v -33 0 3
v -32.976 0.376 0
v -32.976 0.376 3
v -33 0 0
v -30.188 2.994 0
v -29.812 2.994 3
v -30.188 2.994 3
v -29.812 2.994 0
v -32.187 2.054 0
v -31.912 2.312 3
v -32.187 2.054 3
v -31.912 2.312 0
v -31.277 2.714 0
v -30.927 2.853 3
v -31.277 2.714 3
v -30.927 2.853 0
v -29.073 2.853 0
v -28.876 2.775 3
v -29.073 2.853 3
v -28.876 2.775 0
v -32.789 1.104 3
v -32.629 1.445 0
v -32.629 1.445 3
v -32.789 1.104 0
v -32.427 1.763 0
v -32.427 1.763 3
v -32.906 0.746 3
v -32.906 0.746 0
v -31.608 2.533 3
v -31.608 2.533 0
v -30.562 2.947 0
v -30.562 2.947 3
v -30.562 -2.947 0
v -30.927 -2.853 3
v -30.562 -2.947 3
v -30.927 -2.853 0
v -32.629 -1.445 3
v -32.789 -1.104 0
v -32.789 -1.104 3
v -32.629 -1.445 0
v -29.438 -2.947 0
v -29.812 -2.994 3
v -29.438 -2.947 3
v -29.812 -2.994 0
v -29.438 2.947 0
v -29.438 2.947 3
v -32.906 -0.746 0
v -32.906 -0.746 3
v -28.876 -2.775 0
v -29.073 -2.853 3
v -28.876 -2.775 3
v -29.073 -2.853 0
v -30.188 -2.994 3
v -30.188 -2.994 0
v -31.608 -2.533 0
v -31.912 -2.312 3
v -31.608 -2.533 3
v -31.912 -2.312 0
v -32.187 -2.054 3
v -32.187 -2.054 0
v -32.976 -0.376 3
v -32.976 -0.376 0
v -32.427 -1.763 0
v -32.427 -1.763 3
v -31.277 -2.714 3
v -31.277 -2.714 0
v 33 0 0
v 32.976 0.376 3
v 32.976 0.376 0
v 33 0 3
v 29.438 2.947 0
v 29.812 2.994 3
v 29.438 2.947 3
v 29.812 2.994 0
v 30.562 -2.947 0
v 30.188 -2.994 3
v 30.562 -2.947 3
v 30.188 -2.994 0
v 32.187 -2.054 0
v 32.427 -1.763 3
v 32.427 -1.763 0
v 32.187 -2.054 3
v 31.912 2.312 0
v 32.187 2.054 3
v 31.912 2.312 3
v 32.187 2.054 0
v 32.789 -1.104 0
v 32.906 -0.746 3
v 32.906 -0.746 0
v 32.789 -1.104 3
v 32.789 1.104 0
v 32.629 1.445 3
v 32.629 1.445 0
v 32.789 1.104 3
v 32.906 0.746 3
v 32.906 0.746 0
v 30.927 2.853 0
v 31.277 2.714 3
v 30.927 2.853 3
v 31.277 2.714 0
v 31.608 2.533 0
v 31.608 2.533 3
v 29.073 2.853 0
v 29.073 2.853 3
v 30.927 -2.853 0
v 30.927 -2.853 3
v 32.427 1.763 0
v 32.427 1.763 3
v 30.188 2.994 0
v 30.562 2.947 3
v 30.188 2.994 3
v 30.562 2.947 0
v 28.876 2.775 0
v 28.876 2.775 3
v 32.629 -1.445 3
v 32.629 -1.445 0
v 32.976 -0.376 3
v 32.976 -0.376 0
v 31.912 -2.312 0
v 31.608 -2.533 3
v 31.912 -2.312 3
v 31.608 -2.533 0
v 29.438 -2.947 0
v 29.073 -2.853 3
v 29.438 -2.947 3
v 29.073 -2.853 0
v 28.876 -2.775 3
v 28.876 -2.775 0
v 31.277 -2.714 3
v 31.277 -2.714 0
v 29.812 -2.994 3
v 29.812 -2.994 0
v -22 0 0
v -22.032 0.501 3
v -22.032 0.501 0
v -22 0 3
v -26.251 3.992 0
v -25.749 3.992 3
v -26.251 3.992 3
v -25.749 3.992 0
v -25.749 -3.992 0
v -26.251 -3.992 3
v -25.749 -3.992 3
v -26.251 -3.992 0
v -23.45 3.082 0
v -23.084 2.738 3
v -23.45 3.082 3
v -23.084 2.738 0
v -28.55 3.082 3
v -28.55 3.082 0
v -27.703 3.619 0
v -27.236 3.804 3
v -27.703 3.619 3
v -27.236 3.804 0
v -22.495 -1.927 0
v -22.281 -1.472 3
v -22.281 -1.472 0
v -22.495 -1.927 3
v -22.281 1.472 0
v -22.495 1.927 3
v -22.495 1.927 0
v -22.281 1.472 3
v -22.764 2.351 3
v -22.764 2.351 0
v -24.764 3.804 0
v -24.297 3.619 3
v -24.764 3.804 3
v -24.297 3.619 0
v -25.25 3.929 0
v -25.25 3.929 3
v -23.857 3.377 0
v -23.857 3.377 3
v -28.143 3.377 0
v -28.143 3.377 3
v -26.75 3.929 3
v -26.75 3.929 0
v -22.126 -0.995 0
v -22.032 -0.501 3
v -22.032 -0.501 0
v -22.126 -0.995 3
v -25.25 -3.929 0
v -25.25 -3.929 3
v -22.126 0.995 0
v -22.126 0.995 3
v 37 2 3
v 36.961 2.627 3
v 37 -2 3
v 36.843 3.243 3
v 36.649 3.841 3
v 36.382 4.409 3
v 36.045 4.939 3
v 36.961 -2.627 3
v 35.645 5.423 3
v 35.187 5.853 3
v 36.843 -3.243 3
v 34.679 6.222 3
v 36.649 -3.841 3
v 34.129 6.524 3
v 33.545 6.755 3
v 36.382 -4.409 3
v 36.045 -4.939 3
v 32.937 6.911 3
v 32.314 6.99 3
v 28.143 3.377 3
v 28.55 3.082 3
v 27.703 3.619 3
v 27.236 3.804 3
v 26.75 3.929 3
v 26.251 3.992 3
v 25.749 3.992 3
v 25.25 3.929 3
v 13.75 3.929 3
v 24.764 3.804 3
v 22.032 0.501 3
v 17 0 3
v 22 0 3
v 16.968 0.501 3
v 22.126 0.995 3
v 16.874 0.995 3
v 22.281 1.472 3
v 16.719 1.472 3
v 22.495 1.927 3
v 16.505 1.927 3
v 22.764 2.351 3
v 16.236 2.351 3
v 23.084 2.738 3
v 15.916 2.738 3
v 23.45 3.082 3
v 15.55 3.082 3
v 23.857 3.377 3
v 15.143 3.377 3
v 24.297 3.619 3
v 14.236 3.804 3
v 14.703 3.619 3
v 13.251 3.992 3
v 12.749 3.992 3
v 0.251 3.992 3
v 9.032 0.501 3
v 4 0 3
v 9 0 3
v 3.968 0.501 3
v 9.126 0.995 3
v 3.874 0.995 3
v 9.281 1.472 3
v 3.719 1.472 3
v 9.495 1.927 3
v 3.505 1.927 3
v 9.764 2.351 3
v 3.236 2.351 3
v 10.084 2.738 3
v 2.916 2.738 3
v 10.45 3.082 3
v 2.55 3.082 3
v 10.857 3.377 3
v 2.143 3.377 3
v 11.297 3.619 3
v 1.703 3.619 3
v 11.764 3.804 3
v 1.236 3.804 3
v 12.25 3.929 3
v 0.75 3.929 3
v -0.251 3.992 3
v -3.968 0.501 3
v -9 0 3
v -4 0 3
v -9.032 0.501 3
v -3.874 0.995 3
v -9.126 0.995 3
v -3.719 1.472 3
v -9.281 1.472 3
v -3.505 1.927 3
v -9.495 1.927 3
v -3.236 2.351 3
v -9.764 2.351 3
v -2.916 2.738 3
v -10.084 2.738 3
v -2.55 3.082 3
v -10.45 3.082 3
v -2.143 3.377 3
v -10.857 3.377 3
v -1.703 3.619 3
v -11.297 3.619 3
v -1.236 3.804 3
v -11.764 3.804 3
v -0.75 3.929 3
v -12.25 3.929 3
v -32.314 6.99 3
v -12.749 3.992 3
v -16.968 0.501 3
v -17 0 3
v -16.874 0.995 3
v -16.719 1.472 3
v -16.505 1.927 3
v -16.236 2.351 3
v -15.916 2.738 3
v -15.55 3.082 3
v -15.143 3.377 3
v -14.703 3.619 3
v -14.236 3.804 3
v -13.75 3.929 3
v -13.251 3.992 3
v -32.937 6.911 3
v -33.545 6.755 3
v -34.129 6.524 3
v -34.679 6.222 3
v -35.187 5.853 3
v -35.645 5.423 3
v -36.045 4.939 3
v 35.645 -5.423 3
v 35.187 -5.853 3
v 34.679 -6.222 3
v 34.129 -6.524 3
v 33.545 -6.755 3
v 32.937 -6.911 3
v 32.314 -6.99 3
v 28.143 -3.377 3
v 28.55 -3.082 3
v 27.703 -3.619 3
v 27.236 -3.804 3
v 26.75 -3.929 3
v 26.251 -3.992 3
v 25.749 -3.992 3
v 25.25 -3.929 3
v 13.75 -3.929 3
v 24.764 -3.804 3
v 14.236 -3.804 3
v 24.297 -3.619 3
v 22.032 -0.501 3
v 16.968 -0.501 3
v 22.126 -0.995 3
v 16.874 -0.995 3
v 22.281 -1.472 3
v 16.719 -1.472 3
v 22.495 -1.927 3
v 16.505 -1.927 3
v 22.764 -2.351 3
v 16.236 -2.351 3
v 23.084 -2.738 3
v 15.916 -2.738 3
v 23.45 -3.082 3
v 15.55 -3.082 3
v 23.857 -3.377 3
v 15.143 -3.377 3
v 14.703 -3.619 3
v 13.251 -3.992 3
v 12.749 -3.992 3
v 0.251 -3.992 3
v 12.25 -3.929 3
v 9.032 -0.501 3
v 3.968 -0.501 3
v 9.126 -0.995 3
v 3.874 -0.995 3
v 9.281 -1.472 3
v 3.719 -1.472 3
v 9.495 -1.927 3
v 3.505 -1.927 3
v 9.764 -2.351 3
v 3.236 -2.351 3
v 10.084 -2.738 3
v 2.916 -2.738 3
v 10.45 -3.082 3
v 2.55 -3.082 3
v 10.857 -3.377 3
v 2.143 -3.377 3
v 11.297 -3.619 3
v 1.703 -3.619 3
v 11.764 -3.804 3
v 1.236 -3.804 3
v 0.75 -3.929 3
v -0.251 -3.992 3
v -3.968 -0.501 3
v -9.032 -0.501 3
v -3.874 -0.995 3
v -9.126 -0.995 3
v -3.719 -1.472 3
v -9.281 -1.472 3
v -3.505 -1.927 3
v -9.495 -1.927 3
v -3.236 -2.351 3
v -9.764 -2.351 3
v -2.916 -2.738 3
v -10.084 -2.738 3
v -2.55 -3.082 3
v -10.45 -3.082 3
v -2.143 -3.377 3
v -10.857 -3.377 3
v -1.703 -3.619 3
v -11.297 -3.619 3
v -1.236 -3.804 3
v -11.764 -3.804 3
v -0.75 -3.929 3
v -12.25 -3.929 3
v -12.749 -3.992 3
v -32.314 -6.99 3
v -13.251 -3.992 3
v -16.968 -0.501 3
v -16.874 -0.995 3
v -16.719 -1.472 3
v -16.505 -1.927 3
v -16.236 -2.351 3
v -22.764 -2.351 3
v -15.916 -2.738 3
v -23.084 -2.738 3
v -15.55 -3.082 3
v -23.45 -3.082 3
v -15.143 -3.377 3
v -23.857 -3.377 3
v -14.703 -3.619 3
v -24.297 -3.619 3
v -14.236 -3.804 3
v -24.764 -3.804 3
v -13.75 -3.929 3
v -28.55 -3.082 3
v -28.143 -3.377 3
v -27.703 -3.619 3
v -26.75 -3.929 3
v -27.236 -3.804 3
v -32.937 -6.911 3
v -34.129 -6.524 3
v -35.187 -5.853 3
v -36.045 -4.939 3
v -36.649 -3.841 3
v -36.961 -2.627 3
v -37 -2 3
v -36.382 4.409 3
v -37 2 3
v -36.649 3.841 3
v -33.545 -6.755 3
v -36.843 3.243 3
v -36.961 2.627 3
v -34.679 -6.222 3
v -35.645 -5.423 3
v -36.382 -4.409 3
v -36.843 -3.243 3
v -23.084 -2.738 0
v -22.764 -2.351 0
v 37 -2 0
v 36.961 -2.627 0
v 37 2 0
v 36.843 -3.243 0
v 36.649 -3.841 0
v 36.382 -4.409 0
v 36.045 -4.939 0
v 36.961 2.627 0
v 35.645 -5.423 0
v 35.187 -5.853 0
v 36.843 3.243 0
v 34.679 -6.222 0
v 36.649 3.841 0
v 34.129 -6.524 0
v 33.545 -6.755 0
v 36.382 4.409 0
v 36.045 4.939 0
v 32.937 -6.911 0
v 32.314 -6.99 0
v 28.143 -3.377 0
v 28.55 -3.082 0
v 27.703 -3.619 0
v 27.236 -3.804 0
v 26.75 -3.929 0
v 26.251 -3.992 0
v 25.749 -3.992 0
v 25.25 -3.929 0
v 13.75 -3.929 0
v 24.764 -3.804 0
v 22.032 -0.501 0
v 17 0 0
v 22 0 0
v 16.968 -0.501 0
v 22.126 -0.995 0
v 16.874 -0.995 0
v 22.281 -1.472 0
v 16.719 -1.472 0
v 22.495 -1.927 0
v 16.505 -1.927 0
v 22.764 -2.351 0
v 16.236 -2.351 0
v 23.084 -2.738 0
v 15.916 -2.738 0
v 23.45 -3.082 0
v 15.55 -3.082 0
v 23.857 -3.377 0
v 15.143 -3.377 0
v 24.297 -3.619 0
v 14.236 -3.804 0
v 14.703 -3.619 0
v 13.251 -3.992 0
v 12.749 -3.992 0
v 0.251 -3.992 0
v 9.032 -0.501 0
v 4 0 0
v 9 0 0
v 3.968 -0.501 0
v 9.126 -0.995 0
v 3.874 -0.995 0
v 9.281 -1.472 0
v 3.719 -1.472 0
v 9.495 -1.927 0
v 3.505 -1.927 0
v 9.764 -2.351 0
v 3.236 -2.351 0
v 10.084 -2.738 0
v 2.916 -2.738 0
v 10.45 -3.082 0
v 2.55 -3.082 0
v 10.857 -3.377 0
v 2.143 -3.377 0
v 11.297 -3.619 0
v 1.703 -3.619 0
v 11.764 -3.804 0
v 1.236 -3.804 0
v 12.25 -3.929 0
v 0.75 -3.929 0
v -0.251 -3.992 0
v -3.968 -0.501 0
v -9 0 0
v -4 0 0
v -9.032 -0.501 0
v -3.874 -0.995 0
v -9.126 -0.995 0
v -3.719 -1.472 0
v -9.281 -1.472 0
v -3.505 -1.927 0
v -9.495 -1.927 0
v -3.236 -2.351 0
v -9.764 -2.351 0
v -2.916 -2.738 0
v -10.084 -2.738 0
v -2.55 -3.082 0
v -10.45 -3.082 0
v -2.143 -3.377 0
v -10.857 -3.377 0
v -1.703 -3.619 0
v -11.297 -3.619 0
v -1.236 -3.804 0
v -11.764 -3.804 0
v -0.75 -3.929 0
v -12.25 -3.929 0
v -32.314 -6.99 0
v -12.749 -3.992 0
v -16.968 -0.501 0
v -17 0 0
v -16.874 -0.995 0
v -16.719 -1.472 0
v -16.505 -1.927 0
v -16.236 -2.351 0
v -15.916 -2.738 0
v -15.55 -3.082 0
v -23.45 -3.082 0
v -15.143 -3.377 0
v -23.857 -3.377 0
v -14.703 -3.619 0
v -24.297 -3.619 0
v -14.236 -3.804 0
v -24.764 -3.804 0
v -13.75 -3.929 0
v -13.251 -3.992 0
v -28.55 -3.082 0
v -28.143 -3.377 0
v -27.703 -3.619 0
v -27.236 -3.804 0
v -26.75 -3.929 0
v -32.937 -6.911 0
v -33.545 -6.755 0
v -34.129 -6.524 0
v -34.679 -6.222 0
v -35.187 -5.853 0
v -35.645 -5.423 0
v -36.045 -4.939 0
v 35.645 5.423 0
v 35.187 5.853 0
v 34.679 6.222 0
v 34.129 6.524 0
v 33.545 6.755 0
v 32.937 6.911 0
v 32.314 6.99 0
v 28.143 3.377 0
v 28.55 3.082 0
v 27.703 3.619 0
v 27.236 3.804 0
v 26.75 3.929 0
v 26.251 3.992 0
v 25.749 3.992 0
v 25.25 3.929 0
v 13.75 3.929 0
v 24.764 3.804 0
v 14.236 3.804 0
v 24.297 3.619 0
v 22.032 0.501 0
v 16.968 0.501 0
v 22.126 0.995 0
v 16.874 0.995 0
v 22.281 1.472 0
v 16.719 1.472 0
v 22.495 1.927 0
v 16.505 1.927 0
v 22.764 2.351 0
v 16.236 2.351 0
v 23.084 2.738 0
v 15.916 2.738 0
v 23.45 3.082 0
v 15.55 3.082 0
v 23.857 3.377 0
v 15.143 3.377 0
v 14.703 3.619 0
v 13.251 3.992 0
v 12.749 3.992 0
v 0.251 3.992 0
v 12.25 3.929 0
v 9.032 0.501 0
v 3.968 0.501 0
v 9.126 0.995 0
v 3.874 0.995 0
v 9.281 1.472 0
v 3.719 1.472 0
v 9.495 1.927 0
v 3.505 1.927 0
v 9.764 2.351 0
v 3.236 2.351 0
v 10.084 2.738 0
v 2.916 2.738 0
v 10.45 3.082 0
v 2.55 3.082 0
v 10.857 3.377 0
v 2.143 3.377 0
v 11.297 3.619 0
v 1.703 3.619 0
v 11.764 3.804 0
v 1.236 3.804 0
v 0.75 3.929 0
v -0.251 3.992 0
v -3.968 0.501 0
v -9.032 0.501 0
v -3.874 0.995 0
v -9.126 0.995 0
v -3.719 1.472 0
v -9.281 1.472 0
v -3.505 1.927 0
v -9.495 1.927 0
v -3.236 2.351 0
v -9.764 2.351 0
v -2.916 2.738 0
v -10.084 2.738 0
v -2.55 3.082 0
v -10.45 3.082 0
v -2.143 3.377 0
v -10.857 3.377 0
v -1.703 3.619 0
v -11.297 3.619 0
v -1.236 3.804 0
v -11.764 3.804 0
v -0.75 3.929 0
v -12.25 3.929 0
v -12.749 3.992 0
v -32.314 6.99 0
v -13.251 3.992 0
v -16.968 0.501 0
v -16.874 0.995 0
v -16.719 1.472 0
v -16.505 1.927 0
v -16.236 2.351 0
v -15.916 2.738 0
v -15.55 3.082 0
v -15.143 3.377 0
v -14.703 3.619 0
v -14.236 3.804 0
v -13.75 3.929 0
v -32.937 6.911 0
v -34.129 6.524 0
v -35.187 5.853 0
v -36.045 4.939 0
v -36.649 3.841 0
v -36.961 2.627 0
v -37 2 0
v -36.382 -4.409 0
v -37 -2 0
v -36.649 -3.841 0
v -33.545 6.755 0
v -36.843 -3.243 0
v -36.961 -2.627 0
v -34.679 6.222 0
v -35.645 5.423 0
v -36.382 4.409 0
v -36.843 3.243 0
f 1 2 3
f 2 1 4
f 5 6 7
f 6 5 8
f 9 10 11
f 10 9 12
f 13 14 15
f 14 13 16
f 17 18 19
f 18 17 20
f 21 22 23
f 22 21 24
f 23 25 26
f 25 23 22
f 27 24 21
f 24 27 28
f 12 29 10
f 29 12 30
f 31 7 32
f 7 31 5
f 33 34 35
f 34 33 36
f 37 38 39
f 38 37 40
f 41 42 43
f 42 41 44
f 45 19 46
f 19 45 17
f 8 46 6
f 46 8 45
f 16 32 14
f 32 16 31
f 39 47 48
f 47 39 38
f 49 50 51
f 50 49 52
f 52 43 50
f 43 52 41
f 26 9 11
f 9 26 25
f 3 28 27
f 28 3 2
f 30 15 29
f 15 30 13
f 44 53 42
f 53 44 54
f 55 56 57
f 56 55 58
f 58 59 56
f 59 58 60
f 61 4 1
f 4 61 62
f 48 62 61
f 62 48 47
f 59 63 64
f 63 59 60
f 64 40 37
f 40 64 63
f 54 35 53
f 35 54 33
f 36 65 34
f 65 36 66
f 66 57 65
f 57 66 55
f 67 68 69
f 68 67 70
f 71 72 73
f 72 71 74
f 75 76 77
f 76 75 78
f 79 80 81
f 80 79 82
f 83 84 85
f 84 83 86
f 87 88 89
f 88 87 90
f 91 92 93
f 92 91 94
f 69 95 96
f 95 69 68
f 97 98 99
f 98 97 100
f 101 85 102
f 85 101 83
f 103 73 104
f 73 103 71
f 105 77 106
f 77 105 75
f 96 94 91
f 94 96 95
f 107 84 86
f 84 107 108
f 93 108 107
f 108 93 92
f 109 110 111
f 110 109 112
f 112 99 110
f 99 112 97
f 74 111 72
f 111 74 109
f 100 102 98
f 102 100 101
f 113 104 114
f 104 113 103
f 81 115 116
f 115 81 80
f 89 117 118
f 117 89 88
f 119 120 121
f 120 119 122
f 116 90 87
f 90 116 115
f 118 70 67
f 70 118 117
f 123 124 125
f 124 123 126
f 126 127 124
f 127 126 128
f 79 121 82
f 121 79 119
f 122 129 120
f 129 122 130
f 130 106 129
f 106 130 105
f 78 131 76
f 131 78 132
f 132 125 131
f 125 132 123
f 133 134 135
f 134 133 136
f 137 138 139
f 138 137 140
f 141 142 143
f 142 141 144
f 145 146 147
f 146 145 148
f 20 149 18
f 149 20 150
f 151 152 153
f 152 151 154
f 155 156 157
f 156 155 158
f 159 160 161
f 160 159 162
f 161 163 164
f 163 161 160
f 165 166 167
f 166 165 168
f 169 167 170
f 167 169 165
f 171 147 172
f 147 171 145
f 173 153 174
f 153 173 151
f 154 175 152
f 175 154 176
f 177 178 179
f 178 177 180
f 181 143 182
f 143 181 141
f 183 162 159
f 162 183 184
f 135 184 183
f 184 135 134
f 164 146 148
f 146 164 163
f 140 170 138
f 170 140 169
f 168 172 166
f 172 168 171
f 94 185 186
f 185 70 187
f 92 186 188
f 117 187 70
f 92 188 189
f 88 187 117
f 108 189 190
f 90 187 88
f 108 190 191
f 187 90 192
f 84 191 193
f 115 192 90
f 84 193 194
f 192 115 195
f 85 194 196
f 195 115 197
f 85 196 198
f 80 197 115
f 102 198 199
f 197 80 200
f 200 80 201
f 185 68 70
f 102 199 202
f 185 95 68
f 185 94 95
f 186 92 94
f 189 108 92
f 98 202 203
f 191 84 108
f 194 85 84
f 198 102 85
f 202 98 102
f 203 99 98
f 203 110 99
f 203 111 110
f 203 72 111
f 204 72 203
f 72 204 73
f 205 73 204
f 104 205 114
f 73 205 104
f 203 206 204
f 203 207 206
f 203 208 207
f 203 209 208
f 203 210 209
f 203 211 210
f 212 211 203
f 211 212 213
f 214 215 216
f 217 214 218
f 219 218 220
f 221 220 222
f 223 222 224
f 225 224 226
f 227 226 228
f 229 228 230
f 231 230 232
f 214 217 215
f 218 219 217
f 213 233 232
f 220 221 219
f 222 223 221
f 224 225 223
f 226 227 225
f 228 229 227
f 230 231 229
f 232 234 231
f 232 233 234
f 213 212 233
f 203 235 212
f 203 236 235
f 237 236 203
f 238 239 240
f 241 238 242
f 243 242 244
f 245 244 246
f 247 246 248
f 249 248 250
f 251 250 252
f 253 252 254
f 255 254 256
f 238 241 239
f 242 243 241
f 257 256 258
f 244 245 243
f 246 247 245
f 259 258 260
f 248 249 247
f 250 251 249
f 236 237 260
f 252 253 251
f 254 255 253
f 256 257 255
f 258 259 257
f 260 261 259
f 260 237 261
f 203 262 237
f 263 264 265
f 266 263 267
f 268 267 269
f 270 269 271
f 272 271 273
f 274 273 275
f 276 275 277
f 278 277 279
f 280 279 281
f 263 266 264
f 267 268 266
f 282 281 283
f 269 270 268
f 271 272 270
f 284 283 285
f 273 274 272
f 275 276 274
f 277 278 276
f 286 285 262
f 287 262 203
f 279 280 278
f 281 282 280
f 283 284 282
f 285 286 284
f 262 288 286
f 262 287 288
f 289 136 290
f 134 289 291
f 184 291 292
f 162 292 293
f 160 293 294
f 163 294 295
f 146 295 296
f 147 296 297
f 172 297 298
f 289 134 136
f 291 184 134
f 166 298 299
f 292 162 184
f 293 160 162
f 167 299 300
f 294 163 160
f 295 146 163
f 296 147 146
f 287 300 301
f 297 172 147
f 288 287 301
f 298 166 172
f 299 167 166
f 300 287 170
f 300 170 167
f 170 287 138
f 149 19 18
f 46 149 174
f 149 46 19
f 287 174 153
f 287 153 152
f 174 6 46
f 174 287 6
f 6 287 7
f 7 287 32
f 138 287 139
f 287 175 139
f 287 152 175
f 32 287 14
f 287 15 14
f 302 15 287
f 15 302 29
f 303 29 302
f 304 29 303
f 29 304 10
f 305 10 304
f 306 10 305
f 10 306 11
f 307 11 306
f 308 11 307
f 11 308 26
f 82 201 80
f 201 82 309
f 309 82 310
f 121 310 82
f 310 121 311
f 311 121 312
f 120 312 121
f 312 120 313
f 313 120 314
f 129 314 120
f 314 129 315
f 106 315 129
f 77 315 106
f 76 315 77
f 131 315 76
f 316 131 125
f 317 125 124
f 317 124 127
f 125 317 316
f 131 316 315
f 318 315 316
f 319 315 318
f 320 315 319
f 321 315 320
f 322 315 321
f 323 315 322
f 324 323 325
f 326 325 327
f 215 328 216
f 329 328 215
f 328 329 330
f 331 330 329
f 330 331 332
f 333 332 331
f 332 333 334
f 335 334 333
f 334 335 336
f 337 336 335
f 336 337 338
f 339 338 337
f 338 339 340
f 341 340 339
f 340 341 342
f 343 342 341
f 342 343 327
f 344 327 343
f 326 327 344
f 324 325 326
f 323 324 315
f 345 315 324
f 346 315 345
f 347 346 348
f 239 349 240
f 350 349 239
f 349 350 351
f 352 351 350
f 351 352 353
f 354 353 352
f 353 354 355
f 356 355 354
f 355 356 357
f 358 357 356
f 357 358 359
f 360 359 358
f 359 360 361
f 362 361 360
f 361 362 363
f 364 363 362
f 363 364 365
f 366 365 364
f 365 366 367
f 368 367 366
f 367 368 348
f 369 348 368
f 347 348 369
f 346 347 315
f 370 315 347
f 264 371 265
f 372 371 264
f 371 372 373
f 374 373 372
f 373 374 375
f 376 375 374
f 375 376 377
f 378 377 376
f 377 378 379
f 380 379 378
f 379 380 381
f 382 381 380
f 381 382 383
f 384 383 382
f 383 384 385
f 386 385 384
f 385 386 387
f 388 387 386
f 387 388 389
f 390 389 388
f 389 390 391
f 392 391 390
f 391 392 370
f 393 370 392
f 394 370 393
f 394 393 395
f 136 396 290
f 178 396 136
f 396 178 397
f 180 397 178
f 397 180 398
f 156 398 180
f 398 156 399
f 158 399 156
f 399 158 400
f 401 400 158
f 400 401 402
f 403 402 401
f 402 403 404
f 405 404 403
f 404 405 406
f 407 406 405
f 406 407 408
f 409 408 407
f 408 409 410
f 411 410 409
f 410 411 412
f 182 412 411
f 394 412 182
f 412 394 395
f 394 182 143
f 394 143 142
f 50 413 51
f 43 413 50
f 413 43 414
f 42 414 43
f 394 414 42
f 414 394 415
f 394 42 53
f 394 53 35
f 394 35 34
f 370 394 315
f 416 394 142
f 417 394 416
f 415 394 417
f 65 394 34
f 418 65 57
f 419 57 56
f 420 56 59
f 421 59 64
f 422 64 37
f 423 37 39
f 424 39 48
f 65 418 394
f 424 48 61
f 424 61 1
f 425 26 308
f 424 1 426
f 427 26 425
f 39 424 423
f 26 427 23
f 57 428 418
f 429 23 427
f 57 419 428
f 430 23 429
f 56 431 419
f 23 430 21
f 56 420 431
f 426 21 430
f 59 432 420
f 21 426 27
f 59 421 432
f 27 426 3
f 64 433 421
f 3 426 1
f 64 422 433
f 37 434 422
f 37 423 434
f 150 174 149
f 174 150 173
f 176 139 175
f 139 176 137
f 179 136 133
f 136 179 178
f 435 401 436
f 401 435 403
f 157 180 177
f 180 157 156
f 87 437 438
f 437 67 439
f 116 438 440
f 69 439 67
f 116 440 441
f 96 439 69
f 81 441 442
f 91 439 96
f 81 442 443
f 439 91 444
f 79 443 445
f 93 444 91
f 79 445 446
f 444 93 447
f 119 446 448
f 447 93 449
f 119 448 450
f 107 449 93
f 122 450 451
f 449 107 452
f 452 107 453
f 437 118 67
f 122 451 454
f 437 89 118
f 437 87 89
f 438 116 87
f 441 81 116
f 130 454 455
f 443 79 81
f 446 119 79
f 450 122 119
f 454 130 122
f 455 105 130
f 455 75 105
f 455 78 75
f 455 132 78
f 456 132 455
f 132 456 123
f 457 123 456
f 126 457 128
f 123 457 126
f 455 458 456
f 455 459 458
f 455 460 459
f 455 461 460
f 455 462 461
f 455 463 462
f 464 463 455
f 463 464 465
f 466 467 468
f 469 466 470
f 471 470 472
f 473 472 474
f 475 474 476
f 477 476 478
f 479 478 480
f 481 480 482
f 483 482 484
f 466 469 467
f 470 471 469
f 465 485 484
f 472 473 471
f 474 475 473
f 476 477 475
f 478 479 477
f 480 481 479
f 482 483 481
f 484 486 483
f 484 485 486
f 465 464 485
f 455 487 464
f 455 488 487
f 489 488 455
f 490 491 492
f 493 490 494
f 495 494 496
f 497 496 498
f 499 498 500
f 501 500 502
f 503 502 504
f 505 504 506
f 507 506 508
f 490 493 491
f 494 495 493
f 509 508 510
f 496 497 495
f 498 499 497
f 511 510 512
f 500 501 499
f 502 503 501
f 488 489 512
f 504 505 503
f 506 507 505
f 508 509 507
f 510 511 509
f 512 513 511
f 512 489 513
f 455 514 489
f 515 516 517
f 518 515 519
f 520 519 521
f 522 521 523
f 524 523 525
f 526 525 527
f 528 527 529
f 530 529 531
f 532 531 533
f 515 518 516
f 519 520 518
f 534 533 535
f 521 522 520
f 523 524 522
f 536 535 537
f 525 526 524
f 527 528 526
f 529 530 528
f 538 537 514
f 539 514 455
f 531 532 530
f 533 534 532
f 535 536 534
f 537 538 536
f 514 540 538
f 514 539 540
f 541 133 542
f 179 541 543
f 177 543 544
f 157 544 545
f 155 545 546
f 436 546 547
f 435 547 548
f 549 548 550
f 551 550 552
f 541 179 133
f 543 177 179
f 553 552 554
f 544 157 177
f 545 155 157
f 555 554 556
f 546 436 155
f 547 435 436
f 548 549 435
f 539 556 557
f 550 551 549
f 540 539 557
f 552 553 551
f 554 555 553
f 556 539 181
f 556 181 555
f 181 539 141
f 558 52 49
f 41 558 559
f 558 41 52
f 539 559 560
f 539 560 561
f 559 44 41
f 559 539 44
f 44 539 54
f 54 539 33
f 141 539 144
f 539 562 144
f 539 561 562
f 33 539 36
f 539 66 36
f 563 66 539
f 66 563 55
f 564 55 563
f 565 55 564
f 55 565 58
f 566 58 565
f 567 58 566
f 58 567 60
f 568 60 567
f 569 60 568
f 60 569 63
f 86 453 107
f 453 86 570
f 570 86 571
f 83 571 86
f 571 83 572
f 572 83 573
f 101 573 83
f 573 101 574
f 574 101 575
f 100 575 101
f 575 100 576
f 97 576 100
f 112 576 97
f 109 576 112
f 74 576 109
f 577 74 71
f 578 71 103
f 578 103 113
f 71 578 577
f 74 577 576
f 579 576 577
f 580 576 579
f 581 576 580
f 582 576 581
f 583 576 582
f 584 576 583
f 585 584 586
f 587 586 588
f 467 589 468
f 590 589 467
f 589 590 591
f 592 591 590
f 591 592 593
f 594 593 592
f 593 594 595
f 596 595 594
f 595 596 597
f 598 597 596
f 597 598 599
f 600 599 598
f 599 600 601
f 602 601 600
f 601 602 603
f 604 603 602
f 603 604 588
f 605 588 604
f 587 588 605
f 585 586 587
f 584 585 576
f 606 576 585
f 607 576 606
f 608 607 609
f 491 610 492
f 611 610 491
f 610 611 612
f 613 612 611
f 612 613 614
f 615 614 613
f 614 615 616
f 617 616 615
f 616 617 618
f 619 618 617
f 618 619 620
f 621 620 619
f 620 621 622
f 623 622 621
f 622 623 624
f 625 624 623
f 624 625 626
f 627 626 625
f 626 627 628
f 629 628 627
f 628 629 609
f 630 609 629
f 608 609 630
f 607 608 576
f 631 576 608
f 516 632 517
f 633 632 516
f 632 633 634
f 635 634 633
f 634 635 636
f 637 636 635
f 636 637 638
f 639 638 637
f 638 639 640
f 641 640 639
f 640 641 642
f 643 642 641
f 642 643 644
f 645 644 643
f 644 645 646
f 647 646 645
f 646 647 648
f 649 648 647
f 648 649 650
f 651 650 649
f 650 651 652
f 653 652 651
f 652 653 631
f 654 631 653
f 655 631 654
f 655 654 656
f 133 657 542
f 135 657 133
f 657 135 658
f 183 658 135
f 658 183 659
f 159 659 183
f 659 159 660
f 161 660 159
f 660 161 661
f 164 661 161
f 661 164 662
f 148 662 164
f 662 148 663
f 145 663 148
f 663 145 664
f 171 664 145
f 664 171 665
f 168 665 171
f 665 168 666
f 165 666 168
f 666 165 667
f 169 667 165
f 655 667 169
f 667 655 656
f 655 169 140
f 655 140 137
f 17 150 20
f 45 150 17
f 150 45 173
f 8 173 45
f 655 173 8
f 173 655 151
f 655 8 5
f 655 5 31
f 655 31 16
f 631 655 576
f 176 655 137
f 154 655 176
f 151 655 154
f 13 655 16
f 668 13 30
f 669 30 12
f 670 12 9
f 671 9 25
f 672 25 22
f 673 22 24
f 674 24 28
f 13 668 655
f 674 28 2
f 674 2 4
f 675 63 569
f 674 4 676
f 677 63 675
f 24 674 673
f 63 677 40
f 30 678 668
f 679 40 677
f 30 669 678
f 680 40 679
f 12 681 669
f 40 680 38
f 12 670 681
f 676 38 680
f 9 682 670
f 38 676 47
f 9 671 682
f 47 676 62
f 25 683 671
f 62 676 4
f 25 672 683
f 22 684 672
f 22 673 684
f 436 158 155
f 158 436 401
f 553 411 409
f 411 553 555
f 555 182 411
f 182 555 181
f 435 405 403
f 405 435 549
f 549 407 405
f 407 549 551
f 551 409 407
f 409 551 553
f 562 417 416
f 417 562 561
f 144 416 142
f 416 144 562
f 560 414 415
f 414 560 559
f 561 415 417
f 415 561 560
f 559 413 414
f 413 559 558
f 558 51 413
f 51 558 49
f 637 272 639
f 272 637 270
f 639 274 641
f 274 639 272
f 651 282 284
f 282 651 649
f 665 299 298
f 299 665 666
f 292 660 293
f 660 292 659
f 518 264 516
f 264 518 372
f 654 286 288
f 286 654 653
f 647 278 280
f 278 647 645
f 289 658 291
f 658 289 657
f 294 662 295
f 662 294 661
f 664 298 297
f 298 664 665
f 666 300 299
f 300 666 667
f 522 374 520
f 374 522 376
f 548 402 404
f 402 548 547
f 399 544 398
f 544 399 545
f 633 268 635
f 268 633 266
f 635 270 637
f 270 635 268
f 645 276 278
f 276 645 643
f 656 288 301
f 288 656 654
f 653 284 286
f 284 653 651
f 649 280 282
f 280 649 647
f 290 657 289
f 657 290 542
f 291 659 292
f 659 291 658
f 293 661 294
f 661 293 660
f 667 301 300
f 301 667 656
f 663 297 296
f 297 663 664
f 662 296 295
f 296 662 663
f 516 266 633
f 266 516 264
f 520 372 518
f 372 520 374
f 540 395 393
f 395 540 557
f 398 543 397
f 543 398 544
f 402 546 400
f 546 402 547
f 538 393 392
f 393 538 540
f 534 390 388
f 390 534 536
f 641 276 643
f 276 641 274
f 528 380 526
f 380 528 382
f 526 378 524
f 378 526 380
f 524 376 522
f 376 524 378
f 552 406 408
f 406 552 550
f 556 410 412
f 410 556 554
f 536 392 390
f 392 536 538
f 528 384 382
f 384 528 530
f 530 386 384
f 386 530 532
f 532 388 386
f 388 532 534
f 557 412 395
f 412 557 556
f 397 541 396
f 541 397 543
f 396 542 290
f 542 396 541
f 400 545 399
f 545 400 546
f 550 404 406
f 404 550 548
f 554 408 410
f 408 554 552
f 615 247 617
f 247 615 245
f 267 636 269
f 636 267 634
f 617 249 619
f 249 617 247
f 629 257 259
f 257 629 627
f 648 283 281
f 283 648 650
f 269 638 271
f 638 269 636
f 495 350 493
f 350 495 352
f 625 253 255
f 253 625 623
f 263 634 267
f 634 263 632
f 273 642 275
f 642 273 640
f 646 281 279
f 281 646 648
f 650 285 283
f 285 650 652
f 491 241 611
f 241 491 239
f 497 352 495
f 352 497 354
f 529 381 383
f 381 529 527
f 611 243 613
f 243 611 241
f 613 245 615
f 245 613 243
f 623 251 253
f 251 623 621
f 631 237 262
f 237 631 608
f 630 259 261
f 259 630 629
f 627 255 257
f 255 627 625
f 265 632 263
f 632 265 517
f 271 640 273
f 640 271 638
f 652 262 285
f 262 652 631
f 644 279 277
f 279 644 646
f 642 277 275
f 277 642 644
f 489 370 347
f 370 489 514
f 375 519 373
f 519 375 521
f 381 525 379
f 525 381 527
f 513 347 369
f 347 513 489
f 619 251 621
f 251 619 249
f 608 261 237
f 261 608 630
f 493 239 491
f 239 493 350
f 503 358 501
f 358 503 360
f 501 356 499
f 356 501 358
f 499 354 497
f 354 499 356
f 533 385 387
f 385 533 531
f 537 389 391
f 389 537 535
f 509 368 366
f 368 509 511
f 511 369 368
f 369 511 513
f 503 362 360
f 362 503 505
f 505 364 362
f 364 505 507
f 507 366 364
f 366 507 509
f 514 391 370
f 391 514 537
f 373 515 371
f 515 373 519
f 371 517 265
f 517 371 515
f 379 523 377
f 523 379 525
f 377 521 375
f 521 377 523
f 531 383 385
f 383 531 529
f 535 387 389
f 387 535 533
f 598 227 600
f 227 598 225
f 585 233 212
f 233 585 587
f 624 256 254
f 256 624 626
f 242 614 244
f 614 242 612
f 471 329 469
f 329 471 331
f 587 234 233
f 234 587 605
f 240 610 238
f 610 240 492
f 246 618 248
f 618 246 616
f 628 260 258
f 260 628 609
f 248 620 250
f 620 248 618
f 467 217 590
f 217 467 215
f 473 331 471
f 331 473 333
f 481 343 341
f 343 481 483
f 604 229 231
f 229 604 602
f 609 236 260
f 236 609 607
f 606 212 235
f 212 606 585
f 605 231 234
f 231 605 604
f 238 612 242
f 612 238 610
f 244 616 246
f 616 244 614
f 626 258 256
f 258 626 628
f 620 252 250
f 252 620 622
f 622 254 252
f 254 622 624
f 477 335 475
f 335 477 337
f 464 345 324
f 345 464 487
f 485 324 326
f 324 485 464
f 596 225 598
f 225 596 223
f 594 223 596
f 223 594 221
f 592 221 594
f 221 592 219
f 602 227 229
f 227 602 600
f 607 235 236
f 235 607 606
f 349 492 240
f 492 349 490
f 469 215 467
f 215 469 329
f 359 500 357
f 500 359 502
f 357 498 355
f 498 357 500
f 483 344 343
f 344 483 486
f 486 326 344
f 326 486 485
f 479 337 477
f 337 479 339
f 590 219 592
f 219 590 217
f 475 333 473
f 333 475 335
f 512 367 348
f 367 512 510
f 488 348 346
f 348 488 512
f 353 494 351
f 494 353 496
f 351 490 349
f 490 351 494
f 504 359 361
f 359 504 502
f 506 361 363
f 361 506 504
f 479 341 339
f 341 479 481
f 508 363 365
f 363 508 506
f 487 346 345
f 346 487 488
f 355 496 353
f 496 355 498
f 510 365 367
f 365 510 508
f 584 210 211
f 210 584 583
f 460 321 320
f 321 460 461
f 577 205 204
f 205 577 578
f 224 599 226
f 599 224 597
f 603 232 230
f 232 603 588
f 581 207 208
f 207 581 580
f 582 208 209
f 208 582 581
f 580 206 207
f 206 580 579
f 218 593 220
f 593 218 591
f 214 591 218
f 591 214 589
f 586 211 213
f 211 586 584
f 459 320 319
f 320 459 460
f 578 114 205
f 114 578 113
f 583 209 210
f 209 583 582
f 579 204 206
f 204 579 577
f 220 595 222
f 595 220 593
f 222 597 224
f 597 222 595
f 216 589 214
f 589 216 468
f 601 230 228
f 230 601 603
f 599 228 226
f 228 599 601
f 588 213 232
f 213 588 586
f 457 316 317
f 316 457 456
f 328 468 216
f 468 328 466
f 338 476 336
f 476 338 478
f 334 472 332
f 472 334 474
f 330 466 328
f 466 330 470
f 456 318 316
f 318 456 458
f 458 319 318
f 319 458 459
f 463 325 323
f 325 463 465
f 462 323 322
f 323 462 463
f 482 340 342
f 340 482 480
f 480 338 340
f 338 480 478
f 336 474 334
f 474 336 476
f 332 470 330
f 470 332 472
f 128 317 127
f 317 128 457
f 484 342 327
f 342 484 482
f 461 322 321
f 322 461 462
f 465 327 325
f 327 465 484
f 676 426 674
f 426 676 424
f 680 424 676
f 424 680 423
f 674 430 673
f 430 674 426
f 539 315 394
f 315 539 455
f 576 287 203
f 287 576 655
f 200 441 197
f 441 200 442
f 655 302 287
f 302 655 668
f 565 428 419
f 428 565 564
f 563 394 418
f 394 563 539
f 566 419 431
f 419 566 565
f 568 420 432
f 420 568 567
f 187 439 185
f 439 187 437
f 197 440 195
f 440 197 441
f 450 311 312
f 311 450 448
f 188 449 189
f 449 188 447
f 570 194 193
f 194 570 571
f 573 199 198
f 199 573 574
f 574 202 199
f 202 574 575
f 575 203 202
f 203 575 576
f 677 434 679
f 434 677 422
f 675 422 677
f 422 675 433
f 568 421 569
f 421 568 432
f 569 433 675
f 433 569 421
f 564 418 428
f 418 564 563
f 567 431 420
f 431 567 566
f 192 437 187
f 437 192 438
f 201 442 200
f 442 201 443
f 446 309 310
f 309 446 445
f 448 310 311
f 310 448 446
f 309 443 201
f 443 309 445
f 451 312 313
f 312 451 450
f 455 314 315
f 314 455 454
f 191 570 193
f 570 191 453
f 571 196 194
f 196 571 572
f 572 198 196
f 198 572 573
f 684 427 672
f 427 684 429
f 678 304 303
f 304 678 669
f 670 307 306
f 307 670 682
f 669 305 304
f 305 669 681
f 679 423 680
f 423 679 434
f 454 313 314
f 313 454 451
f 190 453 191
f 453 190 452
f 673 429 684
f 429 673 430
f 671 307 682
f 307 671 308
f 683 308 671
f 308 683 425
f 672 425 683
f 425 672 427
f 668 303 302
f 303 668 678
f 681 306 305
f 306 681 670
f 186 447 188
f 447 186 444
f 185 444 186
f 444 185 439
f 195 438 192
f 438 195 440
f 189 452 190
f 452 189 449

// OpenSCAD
$fn = 50;


difference() {
	union() {
		hull() {
			translate(v = [-32.0000000000, 2.0000000000, 0]) {
				cylinder(h = 3, r = 5);
			}
			translate(v = [32.0000000000, 2.0000000000, 0]) {
				cylinder(h = 3, r = 5);
			}
			translate(v = [-32.0000000000, -2.0000000000, 0]) {
				cylinder(h = 3, r = 5);
			}
			translate(v = [32.0000000000, -2.0000000000, 0]) {
				cylinder(h = 3, r = 5);
			}
		}
	}
	union() {
		#translate(v = [-30.0000000000, 0.0000000000, -100.0000000000]) {
			cylinder(h = 200, r = 3.0000000000);
		}
		#translate(v = [-30.0000000000, 0.0000000000, -100.0000000000]) {
			cylinder(h = 200, r = 3.0000000000);
		}
		#translate(v = [30.0000000000, 0.0000000000, -100.0000000000]) {
			cylinder(h = 200, r = 3.0000000000);
		}
		#translate(v = [30.0000000000, 0.0000000000, -100.0000000000]) {
			cylinder(h = 200, r = 3.0000000000);
		}
		#translate(v = [-26.0000000000, 0, 0]) {
			cylinder(h = 3, r = 4.0000000000);
		}
		#translate(v = [-13.0000000000, 0, 0]) {
			cylinder(h = 3, r = 4.0000000000);
		}
		#cylinder(h = 3, r = 4.0000000000);
		#translate(v = [13.0000000000, 0, 0]) {
			cylinder(h = 3, r = 4.0000000000);
		}
		#translate(v = [26.0000000000, 0, 0]) {
			cylinder(h = 3, r = 4.0000000000);
		}
	}
}
